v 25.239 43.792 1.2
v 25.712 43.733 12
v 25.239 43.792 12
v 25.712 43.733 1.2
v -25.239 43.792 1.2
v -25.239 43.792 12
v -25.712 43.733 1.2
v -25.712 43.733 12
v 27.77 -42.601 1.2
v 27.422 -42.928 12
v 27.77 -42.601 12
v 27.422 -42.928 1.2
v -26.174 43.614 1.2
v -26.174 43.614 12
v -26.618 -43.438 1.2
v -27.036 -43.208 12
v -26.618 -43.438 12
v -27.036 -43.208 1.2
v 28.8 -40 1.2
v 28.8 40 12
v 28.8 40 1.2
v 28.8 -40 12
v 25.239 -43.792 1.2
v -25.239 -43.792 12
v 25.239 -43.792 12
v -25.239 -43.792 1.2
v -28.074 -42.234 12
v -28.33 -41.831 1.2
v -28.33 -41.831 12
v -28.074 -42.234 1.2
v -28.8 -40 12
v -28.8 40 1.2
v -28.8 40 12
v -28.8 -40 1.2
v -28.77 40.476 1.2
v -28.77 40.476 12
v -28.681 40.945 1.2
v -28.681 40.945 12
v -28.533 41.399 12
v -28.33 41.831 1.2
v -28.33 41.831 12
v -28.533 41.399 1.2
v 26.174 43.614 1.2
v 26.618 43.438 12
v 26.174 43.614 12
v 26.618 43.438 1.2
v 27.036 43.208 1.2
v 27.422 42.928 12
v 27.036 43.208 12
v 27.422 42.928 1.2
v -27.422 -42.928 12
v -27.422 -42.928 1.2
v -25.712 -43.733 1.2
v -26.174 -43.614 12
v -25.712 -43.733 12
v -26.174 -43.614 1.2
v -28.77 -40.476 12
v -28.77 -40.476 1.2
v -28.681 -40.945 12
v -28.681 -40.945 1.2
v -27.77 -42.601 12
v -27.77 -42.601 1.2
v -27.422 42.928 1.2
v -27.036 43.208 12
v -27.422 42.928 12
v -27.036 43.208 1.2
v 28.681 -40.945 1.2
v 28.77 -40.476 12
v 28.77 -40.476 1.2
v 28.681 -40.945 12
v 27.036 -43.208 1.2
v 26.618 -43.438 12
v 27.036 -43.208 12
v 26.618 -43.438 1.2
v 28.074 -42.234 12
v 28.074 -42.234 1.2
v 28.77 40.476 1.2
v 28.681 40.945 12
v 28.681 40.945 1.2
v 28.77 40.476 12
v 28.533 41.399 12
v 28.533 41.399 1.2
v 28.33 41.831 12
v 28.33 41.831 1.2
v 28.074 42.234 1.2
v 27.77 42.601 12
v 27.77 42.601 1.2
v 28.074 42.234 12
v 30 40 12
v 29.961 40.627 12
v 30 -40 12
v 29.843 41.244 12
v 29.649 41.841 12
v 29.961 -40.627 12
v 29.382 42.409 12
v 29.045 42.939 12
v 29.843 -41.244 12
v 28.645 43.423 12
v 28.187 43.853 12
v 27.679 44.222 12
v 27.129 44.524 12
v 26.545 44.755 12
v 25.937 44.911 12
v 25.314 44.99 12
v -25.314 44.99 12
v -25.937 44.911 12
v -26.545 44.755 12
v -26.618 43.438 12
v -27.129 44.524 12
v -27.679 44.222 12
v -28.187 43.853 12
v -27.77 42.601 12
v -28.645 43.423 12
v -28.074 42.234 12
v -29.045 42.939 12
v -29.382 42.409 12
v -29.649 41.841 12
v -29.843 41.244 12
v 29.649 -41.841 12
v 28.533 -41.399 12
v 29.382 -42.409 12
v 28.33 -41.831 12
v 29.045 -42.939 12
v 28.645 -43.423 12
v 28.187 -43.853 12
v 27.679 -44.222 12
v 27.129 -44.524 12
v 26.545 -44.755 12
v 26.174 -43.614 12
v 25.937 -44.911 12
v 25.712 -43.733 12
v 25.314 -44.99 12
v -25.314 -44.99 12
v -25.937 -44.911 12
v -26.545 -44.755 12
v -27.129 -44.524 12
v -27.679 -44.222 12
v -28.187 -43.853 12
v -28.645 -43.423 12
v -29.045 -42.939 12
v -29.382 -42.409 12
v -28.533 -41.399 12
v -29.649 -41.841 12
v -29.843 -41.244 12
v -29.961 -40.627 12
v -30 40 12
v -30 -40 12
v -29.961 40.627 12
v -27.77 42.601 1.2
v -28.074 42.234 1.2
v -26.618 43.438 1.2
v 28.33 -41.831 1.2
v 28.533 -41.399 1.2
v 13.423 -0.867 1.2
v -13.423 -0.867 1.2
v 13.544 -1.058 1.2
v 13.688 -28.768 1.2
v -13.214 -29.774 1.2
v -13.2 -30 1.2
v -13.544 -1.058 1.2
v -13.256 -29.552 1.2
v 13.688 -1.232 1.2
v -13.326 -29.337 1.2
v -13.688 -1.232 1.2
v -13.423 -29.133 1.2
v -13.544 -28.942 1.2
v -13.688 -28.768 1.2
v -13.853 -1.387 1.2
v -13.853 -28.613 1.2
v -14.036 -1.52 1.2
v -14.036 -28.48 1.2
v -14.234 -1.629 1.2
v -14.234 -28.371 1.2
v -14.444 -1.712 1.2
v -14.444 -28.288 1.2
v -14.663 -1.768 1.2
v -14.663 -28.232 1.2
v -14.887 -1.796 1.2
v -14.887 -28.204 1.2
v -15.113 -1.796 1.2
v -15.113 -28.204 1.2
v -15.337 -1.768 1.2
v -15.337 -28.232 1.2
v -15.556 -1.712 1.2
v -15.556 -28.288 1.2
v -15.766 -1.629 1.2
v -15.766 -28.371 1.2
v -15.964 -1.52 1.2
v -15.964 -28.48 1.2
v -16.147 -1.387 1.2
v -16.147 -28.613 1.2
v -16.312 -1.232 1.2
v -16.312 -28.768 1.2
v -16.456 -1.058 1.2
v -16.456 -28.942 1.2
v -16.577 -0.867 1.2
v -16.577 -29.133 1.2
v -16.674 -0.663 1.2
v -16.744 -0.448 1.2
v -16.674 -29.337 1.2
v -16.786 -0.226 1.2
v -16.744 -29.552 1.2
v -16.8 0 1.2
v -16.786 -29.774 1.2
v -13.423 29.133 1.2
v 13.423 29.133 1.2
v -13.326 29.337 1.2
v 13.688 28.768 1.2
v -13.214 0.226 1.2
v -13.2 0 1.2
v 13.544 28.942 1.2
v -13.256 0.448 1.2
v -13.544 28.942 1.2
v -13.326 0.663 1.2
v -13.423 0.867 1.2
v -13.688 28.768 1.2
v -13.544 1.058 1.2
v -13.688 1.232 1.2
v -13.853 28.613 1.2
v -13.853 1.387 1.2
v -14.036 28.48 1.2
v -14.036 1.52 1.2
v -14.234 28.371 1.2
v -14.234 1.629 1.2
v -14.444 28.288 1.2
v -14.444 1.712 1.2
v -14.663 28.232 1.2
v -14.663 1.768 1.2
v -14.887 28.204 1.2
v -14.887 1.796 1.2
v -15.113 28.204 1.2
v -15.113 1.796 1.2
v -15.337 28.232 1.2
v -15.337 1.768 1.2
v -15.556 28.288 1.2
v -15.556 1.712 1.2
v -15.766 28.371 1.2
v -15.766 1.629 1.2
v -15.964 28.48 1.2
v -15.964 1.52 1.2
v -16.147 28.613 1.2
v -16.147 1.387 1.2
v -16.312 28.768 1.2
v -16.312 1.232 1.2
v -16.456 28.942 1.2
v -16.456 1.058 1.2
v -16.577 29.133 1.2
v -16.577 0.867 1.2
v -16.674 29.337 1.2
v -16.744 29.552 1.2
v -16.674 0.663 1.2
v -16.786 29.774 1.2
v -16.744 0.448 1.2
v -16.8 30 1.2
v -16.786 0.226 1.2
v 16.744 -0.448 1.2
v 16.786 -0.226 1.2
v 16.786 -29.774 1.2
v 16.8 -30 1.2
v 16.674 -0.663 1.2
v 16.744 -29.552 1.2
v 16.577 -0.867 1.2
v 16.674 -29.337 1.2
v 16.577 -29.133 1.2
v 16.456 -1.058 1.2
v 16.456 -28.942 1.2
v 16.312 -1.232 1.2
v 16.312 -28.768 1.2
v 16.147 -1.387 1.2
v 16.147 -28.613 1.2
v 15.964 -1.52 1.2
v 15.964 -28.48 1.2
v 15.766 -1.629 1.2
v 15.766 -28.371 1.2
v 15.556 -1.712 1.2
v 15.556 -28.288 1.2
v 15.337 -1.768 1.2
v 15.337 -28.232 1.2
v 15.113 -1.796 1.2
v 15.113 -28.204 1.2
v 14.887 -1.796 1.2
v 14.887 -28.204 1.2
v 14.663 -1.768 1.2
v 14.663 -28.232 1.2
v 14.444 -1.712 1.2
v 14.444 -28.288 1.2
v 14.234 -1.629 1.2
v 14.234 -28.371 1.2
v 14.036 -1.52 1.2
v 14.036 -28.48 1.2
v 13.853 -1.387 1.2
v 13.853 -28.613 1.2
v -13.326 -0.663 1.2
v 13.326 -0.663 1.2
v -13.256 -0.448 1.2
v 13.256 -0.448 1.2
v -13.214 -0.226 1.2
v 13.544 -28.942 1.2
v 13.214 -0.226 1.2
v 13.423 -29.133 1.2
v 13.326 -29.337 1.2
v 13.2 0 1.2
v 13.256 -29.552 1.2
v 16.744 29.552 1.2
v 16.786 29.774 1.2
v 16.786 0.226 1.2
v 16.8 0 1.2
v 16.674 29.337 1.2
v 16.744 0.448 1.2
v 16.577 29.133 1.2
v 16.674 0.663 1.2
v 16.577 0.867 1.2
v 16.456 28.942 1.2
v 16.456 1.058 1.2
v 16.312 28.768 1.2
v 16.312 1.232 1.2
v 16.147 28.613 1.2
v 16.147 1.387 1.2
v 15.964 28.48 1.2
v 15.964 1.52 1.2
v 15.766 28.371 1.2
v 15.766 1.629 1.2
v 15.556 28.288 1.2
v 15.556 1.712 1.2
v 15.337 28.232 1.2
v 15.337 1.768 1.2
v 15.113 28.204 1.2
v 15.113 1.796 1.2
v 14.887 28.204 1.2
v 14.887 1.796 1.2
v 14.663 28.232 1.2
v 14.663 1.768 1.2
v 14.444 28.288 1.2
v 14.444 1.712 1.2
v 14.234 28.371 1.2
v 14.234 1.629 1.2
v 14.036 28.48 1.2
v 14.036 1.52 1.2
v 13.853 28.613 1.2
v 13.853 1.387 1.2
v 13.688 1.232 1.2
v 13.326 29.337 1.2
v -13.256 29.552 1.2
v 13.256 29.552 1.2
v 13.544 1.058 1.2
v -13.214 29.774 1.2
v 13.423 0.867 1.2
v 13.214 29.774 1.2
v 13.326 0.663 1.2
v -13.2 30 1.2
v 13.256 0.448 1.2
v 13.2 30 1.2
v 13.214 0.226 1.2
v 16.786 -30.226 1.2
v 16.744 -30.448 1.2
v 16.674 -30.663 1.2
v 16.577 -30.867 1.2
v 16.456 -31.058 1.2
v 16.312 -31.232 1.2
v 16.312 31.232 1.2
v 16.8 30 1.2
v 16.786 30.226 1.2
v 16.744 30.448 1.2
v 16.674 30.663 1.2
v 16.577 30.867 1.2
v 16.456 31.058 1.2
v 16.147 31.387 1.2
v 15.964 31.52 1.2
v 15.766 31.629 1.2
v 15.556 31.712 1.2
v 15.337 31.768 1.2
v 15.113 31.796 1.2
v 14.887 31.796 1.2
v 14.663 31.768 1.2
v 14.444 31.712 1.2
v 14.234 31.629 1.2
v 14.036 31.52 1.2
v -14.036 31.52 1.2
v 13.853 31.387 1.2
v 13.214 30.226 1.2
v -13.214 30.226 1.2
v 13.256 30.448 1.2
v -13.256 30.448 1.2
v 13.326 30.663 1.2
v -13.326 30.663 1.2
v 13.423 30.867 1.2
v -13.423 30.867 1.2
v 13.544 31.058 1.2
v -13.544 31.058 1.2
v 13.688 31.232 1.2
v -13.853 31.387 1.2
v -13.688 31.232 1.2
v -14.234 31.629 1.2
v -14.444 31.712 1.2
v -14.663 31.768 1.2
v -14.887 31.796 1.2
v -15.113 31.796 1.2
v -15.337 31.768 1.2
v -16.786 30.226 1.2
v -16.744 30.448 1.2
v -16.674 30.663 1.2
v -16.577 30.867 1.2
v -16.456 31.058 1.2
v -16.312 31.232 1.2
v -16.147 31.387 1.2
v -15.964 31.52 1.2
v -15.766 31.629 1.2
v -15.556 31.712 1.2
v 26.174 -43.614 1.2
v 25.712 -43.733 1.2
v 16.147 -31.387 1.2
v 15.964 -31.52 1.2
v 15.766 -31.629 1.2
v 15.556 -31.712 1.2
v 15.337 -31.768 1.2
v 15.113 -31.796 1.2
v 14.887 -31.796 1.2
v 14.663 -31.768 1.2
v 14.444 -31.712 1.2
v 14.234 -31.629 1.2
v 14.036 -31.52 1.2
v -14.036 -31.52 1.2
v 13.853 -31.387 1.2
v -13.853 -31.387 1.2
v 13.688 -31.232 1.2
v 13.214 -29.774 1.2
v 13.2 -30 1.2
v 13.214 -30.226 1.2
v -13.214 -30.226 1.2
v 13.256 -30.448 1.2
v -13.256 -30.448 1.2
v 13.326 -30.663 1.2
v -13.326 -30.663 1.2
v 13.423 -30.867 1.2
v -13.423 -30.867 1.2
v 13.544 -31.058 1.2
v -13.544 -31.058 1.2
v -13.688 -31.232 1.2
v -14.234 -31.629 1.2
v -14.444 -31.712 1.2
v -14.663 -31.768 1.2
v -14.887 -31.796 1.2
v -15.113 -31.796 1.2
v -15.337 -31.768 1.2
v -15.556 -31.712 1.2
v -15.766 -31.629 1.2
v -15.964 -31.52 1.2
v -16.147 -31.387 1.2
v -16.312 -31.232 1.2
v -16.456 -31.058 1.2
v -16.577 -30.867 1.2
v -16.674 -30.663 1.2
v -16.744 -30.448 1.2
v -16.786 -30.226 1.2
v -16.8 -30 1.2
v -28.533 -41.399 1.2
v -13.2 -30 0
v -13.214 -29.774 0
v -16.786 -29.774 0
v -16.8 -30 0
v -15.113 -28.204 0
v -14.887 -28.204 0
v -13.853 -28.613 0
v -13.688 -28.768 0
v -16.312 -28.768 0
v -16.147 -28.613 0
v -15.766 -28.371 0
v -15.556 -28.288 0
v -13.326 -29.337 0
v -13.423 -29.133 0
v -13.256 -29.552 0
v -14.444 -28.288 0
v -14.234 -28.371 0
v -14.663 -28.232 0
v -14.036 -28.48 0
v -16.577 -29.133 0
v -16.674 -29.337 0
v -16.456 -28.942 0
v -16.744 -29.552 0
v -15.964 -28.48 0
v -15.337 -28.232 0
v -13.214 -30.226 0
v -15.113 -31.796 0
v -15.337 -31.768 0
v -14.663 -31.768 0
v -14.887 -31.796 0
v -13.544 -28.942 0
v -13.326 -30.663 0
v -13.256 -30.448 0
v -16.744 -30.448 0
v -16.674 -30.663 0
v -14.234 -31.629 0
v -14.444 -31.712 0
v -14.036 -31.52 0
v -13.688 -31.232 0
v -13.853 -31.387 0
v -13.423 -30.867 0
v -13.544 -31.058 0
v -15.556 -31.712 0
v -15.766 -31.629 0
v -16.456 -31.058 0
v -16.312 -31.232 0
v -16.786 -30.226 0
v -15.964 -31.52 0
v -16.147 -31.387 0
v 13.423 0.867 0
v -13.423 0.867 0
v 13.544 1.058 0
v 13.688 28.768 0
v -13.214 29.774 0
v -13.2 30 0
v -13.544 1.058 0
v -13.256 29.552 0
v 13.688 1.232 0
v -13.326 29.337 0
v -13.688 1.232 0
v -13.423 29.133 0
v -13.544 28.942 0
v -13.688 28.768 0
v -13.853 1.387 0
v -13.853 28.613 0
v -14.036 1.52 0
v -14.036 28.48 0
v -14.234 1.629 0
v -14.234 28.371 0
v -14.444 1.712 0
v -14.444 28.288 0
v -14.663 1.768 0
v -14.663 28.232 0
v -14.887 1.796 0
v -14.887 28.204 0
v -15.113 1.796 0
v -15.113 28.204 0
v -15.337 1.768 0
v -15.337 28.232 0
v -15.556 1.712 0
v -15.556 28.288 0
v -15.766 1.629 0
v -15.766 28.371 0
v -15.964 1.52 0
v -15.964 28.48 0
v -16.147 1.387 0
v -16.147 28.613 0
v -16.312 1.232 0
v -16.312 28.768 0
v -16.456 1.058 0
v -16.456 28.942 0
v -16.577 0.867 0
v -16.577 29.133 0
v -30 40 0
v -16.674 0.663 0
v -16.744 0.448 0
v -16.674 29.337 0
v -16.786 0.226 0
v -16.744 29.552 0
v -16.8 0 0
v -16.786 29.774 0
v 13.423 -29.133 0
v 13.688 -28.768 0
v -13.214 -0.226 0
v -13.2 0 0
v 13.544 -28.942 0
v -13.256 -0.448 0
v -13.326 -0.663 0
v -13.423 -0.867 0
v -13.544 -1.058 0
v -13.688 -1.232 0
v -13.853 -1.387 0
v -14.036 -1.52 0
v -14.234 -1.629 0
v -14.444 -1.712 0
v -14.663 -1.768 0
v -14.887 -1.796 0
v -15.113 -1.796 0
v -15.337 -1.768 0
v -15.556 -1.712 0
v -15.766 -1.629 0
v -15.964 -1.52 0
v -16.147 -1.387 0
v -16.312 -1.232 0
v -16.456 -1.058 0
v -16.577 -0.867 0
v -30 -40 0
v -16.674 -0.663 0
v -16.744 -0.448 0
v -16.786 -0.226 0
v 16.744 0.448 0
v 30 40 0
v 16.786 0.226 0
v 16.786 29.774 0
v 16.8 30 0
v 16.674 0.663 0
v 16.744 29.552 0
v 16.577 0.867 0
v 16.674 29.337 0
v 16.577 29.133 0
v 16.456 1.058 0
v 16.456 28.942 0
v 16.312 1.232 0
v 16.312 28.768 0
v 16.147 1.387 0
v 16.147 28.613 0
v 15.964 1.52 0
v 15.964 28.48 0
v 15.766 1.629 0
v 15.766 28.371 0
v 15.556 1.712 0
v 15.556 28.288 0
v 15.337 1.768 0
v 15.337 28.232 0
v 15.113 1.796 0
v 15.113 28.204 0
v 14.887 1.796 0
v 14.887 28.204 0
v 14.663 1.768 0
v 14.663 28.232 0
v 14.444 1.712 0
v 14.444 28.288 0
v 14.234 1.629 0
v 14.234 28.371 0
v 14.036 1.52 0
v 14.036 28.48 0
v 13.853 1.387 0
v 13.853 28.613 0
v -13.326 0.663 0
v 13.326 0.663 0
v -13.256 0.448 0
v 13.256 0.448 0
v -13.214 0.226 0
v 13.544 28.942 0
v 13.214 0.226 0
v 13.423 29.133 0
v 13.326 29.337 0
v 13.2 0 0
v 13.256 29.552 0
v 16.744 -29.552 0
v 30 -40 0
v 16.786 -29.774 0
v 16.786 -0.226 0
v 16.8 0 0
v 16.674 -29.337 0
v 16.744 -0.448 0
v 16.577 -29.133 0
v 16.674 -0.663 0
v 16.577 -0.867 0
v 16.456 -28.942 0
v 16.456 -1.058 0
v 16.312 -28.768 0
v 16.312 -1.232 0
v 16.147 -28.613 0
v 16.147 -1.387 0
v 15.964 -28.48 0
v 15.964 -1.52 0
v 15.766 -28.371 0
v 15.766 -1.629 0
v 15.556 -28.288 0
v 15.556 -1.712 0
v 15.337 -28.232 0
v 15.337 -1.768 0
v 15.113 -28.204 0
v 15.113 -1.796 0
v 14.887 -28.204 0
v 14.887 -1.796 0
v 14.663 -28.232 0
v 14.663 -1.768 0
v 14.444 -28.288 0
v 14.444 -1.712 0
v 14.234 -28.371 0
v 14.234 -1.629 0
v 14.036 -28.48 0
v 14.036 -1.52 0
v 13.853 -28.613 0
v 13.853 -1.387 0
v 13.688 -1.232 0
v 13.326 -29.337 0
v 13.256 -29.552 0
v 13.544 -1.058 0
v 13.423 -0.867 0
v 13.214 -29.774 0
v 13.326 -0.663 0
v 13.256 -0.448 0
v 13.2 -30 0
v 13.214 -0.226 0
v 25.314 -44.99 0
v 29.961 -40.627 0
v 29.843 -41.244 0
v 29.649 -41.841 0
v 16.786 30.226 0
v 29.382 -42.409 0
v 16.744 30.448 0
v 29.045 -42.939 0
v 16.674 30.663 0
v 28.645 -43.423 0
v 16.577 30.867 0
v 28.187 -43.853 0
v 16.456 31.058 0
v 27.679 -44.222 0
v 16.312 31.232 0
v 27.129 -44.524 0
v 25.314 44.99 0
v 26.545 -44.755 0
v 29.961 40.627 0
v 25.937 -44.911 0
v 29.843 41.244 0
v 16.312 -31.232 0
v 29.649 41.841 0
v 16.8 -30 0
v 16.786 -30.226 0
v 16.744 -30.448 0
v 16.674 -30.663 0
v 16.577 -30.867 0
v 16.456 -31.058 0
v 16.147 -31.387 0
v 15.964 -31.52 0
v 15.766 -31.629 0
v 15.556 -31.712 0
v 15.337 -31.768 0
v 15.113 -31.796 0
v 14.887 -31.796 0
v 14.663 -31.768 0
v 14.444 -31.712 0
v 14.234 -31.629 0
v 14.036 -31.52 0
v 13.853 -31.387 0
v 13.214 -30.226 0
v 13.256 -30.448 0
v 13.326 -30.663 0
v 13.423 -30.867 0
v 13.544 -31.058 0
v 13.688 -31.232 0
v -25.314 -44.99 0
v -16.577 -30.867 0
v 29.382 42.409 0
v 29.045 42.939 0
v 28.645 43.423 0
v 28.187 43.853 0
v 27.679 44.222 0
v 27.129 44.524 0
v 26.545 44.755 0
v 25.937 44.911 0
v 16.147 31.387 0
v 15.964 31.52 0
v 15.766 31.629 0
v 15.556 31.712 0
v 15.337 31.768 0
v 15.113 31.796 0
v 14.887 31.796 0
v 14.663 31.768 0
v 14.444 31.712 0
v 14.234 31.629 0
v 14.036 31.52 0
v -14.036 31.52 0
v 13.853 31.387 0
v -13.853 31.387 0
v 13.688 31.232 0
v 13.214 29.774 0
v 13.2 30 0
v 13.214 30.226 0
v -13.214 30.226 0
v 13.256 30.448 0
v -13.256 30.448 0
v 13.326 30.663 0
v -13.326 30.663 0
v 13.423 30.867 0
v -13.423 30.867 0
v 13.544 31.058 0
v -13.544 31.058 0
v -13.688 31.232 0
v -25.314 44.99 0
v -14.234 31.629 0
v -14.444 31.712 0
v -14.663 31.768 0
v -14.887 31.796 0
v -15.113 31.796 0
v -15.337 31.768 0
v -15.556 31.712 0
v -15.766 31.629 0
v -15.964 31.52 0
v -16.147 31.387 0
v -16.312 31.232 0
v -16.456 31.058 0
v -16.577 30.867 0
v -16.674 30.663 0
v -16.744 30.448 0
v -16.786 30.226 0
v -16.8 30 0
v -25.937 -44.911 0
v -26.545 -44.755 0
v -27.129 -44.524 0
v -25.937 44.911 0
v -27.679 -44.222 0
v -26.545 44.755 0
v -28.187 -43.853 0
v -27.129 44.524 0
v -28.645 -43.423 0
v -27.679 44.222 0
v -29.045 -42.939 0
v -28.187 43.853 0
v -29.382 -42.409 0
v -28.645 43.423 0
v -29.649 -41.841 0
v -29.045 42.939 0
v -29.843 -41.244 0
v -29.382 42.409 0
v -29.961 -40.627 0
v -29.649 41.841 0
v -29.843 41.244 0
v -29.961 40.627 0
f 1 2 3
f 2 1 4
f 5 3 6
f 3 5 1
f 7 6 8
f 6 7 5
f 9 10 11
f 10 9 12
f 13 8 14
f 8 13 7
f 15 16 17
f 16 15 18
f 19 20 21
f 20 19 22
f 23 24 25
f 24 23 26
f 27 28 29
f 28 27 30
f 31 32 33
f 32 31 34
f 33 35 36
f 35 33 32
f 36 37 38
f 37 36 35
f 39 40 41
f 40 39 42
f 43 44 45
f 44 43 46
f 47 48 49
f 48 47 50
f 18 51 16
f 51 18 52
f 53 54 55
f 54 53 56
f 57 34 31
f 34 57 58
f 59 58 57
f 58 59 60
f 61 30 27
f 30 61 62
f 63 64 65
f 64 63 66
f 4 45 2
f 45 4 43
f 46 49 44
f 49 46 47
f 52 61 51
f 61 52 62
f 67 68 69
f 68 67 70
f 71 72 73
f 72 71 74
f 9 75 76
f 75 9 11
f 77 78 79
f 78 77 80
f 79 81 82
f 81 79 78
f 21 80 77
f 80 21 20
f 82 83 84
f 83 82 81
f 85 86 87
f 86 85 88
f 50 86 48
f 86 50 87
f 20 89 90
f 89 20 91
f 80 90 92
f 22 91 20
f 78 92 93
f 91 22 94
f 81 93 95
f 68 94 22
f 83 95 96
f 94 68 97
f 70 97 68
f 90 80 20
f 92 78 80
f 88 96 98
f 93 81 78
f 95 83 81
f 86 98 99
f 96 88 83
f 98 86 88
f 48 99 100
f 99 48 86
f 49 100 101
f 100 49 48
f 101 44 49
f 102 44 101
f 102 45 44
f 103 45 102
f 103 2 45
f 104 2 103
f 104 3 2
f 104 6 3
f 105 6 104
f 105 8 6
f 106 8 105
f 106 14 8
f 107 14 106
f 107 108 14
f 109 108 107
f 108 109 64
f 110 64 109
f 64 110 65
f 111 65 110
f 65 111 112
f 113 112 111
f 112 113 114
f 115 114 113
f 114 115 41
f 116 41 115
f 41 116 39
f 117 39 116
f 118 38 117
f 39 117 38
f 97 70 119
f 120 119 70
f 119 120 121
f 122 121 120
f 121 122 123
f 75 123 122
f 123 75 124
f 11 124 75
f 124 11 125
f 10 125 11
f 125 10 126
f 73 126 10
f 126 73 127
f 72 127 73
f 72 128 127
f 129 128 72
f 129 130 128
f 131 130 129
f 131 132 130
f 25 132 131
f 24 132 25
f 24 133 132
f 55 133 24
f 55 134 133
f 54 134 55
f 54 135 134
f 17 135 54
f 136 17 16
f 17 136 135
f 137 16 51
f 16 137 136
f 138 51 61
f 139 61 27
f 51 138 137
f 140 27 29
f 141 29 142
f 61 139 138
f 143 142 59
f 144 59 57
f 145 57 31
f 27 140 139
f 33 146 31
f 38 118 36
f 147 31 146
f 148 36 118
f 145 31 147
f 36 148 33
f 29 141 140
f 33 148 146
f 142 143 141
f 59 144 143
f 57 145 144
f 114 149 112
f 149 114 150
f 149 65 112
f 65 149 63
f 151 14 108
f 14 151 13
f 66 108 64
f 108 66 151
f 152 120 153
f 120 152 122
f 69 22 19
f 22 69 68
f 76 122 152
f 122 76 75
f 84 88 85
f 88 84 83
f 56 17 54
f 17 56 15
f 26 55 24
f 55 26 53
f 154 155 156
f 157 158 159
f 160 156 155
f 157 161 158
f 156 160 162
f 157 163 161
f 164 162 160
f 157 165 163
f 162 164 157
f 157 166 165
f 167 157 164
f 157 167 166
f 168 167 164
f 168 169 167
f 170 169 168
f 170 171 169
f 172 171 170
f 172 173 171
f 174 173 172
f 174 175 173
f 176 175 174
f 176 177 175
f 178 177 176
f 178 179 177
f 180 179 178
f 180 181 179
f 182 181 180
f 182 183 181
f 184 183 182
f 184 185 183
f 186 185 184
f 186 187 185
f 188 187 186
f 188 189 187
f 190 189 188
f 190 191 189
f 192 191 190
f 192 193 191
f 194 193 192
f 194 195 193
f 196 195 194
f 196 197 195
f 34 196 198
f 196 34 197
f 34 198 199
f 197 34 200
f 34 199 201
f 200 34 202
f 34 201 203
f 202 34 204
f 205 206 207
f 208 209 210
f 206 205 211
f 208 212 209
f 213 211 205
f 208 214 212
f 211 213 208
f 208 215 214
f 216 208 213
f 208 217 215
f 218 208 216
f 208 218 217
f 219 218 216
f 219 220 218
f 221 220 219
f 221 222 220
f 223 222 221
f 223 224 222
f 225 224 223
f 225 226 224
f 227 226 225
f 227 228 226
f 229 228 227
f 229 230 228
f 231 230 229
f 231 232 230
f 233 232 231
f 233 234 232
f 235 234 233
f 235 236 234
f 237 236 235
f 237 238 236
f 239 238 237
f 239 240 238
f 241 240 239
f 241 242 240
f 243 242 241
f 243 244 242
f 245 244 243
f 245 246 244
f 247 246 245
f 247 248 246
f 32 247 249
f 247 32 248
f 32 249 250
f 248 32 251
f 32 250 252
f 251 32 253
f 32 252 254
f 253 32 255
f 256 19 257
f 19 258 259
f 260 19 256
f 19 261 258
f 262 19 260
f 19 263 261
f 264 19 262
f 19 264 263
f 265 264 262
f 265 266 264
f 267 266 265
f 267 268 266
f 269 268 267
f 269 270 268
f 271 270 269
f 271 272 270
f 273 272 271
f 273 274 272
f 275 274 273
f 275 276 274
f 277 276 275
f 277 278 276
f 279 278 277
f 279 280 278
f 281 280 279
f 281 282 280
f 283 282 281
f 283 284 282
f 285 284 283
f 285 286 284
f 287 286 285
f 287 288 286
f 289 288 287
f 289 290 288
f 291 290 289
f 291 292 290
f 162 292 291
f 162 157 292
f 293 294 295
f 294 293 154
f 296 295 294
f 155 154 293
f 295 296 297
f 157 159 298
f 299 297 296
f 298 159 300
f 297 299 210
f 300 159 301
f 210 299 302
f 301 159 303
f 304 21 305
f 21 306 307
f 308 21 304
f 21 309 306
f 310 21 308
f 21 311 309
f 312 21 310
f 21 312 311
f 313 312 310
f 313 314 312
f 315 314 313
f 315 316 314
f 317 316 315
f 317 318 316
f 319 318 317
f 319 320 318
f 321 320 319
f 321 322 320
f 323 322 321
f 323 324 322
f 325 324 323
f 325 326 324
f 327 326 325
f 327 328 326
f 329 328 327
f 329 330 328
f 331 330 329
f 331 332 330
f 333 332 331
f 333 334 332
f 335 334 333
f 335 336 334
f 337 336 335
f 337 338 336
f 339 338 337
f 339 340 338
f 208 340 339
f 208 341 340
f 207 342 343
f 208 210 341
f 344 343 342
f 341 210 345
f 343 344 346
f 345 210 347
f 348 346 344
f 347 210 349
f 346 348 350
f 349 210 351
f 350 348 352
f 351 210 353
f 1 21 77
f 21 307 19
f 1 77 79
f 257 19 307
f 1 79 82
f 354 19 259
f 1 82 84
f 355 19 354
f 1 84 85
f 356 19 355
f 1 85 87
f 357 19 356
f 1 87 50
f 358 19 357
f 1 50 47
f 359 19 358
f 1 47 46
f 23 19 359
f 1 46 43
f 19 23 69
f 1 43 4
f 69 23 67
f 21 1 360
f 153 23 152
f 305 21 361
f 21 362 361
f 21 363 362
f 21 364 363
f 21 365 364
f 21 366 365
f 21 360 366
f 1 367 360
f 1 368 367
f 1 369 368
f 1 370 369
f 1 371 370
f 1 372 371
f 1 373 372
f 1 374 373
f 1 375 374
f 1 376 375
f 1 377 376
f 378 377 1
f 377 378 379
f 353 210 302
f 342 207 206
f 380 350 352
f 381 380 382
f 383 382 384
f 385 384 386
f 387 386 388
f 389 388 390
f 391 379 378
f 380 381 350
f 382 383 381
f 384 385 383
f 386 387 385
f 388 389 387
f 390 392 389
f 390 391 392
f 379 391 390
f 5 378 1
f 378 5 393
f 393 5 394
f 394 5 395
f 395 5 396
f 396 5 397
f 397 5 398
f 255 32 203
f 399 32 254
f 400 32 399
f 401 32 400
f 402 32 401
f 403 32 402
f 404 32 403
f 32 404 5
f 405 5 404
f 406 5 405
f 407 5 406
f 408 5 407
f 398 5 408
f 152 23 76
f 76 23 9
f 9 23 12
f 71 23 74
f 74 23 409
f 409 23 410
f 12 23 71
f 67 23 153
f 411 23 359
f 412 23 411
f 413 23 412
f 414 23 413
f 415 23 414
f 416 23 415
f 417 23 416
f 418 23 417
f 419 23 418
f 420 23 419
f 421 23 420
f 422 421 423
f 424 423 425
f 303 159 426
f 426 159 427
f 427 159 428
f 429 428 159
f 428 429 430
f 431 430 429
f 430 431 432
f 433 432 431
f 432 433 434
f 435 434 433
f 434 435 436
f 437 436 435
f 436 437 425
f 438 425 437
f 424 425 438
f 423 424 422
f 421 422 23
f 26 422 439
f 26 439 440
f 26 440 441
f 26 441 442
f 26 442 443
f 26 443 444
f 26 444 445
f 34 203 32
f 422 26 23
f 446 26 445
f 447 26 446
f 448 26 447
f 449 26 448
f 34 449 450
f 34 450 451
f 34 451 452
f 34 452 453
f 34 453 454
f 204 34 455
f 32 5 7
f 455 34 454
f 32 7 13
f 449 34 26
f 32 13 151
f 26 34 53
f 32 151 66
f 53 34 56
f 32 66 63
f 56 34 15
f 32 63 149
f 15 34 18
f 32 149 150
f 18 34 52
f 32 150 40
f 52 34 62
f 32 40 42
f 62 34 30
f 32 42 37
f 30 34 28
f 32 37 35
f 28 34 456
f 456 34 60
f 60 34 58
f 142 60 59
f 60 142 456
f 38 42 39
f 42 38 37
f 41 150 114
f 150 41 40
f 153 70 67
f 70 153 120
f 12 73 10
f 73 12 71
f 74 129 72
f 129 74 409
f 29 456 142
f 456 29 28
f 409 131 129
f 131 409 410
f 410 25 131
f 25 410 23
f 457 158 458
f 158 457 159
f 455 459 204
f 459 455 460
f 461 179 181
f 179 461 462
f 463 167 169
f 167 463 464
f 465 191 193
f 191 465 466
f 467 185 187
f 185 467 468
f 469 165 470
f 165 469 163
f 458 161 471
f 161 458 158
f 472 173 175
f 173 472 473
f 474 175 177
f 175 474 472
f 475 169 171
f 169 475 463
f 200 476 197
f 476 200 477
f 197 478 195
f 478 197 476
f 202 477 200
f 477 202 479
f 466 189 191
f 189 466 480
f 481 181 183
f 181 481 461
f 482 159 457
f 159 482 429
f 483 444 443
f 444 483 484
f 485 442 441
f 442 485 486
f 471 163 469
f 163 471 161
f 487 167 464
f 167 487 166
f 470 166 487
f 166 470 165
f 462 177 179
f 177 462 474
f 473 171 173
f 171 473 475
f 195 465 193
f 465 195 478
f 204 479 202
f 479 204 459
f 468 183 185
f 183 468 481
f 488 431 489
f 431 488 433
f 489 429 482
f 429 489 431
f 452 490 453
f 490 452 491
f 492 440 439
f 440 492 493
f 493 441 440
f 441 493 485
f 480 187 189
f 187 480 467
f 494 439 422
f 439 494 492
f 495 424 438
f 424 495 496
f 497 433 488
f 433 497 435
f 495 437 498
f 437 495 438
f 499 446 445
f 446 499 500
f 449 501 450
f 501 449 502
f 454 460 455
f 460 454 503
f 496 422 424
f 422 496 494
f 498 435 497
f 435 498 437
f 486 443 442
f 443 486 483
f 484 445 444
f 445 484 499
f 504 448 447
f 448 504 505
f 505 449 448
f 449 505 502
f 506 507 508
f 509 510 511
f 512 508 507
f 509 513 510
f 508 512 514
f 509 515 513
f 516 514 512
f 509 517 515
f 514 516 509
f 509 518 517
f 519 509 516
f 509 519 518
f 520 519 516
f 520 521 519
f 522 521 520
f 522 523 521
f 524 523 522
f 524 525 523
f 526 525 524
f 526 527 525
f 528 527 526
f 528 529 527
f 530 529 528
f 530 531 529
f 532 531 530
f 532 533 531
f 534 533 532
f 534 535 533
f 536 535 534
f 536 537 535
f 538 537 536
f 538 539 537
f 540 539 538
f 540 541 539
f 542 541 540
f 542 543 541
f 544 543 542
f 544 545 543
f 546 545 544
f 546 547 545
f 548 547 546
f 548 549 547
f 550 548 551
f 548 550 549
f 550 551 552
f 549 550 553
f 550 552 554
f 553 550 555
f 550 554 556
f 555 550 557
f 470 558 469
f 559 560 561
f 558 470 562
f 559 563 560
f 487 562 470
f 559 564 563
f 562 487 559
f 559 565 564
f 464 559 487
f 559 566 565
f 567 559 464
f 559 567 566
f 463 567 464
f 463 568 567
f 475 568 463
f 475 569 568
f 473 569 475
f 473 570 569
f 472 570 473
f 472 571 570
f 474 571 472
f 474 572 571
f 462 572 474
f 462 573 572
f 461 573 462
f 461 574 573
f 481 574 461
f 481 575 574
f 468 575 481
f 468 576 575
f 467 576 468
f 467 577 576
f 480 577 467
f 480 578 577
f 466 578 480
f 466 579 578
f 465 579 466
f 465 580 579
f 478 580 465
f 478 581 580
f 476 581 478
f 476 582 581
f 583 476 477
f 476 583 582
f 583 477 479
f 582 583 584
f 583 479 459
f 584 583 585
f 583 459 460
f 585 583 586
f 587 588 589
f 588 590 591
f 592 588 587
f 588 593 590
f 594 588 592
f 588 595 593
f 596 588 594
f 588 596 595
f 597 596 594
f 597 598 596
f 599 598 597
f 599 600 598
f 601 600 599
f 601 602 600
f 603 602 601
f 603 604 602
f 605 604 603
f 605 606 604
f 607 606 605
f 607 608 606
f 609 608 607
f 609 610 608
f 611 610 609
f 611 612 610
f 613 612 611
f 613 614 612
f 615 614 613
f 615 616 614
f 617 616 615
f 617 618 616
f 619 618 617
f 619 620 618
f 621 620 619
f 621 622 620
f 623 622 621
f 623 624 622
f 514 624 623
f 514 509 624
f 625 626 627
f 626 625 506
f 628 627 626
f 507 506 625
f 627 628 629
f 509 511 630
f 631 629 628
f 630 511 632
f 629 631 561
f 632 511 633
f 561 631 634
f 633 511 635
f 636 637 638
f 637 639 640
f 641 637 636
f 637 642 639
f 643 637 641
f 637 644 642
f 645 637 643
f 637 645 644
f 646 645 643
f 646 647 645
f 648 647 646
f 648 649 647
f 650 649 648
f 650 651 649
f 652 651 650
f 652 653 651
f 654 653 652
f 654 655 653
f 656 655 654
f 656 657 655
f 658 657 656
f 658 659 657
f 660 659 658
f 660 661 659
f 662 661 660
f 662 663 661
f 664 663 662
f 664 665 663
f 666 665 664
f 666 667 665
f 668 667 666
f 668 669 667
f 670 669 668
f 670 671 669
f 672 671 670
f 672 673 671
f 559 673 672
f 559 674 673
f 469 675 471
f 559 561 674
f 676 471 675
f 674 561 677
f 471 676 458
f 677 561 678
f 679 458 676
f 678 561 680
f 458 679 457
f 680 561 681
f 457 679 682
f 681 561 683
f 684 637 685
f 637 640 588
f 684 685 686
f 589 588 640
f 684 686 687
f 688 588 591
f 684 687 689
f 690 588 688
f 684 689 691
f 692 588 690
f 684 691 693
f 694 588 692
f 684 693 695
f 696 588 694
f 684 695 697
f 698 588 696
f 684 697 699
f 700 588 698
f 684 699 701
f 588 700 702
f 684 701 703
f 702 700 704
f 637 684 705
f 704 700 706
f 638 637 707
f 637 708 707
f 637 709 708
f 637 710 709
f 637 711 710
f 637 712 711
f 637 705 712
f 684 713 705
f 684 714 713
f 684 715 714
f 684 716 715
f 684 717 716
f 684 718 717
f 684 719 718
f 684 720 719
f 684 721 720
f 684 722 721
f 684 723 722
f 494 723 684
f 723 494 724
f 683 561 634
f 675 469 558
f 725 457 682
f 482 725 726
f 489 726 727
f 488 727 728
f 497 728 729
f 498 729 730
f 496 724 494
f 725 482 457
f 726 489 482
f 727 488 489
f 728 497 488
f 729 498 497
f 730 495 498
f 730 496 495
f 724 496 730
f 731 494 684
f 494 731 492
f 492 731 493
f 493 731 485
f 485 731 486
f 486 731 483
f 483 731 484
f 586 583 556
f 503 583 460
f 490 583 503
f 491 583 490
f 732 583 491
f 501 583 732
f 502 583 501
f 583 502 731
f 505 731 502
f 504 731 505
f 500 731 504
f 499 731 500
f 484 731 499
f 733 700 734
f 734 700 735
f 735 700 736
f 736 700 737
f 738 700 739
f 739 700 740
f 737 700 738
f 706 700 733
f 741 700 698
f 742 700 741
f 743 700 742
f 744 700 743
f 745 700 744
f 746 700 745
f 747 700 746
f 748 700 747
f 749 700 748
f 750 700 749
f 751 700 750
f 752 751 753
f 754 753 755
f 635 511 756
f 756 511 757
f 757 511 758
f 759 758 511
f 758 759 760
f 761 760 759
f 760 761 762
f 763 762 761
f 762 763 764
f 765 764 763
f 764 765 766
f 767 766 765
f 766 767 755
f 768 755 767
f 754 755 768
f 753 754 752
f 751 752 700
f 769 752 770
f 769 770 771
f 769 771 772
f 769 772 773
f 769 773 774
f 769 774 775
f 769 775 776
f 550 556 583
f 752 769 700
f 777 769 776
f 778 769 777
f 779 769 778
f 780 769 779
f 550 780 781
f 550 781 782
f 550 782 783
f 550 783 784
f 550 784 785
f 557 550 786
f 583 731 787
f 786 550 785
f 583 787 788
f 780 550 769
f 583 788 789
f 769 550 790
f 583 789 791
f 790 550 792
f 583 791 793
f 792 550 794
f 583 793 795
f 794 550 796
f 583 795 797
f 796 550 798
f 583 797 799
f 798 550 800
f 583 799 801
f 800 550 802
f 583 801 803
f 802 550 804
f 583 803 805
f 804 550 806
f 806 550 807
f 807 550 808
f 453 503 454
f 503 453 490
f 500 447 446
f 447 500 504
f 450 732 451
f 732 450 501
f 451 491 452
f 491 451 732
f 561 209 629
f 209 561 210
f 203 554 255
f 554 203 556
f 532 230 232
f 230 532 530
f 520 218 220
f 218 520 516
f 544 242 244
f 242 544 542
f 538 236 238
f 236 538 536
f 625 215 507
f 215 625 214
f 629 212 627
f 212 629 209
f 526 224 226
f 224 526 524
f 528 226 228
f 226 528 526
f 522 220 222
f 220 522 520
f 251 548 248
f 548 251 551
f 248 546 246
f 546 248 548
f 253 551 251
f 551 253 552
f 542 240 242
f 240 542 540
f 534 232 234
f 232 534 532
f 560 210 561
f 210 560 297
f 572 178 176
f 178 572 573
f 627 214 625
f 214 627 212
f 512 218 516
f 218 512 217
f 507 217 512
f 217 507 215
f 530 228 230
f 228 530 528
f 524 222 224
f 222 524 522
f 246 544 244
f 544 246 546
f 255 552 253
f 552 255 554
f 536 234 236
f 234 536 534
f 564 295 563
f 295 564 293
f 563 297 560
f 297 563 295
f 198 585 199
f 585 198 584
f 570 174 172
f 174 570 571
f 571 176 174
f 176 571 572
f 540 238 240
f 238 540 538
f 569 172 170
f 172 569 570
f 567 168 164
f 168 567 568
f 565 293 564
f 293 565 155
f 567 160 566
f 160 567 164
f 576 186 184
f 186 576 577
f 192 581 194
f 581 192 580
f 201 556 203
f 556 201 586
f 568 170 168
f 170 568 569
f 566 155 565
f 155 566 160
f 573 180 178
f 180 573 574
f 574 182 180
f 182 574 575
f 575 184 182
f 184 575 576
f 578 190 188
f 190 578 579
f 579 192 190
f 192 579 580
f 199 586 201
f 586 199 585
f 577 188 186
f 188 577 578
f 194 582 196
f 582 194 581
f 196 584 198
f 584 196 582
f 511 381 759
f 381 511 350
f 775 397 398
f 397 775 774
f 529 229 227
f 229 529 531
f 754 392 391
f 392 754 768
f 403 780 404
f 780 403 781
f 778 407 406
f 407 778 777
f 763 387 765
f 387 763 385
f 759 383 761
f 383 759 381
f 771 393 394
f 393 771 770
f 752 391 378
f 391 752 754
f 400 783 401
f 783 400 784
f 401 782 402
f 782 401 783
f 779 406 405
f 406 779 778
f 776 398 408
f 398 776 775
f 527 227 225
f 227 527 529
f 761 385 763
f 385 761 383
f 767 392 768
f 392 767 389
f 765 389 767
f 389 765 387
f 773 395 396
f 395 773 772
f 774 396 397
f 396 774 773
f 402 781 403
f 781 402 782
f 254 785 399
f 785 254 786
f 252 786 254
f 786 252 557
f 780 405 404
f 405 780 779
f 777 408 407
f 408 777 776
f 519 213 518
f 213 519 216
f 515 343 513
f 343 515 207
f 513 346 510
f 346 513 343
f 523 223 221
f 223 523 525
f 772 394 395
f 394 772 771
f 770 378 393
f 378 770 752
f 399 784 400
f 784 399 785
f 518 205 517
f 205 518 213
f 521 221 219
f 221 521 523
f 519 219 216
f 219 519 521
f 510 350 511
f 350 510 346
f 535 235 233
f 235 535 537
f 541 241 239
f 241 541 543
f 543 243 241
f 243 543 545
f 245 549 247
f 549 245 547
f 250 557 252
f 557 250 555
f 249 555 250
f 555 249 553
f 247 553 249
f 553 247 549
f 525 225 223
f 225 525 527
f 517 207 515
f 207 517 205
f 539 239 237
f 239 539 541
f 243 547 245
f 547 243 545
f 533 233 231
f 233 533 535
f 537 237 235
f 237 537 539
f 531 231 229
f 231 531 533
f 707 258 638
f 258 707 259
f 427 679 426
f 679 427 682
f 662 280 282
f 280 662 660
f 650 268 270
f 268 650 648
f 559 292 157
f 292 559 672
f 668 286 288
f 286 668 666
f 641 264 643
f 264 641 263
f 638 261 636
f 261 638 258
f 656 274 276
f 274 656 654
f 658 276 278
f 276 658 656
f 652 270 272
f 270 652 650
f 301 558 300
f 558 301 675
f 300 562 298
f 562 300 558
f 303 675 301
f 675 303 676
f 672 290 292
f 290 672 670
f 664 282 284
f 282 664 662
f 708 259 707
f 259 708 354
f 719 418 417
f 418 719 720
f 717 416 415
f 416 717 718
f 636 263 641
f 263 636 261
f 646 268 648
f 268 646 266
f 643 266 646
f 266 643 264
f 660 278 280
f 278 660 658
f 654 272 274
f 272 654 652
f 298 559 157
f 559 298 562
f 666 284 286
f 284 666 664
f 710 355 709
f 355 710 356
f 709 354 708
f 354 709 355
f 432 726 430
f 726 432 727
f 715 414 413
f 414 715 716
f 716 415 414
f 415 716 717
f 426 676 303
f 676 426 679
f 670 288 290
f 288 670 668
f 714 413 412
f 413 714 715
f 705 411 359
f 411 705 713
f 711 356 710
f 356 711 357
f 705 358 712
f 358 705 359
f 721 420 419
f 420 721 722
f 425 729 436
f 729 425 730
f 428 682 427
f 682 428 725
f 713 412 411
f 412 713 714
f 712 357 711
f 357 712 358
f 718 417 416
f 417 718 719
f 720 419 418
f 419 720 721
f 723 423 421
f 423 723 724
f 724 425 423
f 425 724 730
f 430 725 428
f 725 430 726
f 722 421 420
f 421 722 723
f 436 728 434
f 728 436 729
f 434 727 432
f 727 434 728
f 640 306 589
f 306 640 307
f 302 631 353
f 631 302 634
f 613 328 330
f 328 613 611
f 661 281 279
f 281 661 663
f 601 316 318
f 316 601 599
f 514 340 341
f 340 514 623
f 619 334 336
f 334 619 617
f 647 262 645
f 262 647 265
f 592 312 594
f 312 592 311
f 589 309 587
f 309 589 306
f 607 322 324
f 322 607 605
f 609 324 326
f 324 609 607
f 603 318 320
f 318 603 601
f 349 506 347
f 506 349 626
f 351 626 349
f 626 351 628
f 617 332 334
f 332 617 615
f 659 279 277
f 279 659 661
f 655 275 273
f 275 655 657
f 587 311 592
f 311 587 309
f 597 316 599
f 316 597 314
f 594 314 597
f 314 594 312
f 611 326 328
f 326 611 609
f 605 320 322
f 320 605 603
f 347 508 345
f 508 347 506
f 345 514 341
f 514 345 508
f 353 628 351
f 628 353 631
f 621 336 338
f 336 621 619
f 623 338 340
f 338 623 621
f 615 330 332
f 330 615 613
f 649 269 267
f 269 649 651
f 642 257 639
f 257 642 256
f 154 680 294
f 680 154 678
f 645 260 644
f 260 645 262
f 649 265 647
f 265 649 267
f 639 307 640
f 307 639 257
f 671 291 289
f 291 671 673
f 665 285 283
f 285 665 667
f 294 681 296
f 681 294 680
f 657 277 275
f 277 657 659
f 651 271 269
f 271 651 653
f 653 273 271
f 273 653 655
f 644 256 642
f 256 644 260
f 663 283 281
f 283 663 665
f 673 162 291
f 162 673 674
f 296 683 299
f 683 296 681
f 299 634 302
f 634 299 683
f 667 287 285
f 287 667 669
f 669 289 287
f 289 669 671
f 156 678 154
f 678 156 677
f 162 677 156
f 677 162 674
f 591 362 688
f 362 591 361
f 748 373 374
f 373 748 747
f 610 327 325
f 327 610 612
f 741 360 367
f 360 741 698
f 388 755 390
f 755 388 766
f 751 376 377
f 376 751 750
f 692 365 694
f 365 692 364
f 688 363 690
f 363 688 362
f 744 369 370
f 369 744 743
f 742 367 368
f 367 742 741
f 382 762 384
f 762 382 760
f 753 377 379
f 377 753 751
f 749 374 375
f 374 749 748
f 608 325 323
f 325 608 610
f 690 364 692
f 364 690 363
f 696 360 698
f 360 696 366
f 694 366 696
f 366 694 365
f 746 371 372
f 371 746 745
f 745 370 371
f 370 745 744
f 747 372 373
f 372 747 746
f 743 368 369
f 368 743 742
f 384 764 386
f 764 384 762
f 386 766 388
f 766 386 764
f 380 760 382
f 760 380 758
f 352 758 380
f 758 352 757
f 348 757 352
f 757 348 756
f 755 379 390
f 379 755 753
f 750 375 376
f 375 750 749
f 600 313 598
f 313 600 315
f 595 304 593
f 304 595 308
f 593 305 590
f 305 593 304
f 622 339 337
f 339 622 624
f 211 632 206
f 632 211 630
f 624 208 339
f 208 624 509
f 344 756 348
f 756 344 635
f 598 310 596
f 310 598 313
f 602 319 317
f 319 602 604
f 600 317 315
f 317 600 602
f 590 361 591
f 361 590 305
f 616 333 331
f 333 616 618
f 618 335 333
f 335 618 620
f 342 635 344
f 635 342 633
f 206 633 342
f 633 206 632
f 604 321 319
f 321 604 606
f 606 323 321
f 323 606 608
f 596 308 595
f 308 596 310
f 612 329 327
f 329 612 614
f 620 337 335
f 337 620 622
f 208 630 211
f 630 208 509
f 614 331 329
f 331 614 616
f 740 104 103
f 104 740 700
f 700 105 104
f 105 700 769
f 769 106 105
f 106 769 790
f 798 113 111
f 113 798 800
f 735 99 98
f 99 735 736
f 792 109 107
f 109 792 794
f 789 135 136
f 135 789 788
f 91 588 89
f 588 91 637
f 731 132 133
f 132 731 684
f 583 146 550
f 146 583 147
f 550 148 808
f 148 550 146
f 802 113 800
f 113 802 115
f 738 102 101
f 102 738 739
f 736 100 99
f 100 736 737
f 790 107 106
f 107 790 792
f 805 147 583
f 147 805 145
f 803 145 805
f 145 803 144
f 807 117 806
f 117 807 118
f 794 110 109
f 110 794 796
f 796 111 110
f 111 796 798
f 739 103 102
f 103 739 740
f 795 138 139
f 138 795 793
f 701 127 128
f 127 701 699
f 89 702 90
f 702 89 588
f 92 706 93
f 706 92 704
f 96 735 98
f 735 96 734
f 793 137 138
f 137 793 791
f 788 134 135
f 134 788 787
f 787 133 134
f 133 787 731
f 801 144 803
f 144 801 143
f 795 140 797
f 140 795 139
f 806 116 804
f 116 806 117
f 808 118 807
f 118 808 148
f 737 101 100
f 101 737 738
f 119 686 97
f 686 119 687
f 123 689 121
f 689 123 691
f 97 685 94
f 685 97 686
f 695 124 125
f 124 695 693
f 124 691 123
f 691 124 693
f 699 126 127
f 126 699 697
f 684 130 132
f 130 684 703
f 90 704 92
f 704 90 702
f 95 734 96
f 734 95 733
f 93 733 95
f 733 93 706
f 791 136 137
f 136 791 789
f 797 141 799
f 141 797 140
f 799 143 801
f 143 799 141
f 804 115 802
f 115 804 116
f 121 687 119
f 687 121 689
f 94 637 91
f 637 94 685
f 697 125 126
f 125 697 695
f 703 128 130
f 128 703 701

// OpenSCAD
$fn = 50;


difference() {
	union() {
		hull() {
			translate(v = [-25.0000000000, 40.0000000000, 0]) {
				cylinder(h = 12, r = 5);
			}
			translate(v = [25.0000000000, 40.0000000000, 0]) {
				cylinder(h = 12, r = 5);
			}
			translate(v = [-25.0000000000, -40.0000000000, 0]) {
				cylinder(h = 12, r = 5);
			}
			translate(v = [25.0000000000, -40.0000000000, 0]) {
				cylinder(h = 12, r = 5);
			}
		}
	}
	union() {
		translate(v = [0, 0, 1.2000000000]) {
			hull() {
				translate(v = [-25.0000000000, 40.0000000000, 0]) {
					cylinder(h = 10.8000000000, r = 3.8000000000);
				}
				translate(v = [25.0000000000, 40.0000000000, 0]) {
					cylinder(h = 10.8000000000, r = 3.8000000000);
				}
				translate(v = [-25.0000000000, -40.0000000000, 0]) {
					cylinder(h = 10.8000000000, r = 3.8000000000);
				}
				translate(v = [25.0000000000, -40.0000000000, 0]) {
					cylinder(h = 10.8000000000, r = 3.8000000000);
				}
			}
		}
		#translate(v = [-15.0000000000, -30.0000000000, 0]) {
			cylinder(h = 1.2000000000, r = 1.8000000000);
		}
		#translate(v = [-15.0000000000, 0.0000000000, 0]) {
			cylinder(h = 1.2000000000, r = 1.8000000000);
		}
		#translate(v = [-15.0000000000, 30.0000000000, 0]) {
			cylinder(h = 1.2000000000, r = 1.8000000000);
		}
		#translate(v = [15.0000000000, -30.0000000000, 0]) {
			cylinder(h = 1.2000000000, r = 1.8000000000);
		}
		#translate(v = [15.0000000000, 0.0000000000, 0]) {
			cylinder(h = 1.2000000000, r = 1.8000000000);
		}
		#translate(v = [15.0000000000, 30.0000000000, 0]) {
			cylinder(h = 1.2000000000, r = 1.8000000000);
		}
	}
}
